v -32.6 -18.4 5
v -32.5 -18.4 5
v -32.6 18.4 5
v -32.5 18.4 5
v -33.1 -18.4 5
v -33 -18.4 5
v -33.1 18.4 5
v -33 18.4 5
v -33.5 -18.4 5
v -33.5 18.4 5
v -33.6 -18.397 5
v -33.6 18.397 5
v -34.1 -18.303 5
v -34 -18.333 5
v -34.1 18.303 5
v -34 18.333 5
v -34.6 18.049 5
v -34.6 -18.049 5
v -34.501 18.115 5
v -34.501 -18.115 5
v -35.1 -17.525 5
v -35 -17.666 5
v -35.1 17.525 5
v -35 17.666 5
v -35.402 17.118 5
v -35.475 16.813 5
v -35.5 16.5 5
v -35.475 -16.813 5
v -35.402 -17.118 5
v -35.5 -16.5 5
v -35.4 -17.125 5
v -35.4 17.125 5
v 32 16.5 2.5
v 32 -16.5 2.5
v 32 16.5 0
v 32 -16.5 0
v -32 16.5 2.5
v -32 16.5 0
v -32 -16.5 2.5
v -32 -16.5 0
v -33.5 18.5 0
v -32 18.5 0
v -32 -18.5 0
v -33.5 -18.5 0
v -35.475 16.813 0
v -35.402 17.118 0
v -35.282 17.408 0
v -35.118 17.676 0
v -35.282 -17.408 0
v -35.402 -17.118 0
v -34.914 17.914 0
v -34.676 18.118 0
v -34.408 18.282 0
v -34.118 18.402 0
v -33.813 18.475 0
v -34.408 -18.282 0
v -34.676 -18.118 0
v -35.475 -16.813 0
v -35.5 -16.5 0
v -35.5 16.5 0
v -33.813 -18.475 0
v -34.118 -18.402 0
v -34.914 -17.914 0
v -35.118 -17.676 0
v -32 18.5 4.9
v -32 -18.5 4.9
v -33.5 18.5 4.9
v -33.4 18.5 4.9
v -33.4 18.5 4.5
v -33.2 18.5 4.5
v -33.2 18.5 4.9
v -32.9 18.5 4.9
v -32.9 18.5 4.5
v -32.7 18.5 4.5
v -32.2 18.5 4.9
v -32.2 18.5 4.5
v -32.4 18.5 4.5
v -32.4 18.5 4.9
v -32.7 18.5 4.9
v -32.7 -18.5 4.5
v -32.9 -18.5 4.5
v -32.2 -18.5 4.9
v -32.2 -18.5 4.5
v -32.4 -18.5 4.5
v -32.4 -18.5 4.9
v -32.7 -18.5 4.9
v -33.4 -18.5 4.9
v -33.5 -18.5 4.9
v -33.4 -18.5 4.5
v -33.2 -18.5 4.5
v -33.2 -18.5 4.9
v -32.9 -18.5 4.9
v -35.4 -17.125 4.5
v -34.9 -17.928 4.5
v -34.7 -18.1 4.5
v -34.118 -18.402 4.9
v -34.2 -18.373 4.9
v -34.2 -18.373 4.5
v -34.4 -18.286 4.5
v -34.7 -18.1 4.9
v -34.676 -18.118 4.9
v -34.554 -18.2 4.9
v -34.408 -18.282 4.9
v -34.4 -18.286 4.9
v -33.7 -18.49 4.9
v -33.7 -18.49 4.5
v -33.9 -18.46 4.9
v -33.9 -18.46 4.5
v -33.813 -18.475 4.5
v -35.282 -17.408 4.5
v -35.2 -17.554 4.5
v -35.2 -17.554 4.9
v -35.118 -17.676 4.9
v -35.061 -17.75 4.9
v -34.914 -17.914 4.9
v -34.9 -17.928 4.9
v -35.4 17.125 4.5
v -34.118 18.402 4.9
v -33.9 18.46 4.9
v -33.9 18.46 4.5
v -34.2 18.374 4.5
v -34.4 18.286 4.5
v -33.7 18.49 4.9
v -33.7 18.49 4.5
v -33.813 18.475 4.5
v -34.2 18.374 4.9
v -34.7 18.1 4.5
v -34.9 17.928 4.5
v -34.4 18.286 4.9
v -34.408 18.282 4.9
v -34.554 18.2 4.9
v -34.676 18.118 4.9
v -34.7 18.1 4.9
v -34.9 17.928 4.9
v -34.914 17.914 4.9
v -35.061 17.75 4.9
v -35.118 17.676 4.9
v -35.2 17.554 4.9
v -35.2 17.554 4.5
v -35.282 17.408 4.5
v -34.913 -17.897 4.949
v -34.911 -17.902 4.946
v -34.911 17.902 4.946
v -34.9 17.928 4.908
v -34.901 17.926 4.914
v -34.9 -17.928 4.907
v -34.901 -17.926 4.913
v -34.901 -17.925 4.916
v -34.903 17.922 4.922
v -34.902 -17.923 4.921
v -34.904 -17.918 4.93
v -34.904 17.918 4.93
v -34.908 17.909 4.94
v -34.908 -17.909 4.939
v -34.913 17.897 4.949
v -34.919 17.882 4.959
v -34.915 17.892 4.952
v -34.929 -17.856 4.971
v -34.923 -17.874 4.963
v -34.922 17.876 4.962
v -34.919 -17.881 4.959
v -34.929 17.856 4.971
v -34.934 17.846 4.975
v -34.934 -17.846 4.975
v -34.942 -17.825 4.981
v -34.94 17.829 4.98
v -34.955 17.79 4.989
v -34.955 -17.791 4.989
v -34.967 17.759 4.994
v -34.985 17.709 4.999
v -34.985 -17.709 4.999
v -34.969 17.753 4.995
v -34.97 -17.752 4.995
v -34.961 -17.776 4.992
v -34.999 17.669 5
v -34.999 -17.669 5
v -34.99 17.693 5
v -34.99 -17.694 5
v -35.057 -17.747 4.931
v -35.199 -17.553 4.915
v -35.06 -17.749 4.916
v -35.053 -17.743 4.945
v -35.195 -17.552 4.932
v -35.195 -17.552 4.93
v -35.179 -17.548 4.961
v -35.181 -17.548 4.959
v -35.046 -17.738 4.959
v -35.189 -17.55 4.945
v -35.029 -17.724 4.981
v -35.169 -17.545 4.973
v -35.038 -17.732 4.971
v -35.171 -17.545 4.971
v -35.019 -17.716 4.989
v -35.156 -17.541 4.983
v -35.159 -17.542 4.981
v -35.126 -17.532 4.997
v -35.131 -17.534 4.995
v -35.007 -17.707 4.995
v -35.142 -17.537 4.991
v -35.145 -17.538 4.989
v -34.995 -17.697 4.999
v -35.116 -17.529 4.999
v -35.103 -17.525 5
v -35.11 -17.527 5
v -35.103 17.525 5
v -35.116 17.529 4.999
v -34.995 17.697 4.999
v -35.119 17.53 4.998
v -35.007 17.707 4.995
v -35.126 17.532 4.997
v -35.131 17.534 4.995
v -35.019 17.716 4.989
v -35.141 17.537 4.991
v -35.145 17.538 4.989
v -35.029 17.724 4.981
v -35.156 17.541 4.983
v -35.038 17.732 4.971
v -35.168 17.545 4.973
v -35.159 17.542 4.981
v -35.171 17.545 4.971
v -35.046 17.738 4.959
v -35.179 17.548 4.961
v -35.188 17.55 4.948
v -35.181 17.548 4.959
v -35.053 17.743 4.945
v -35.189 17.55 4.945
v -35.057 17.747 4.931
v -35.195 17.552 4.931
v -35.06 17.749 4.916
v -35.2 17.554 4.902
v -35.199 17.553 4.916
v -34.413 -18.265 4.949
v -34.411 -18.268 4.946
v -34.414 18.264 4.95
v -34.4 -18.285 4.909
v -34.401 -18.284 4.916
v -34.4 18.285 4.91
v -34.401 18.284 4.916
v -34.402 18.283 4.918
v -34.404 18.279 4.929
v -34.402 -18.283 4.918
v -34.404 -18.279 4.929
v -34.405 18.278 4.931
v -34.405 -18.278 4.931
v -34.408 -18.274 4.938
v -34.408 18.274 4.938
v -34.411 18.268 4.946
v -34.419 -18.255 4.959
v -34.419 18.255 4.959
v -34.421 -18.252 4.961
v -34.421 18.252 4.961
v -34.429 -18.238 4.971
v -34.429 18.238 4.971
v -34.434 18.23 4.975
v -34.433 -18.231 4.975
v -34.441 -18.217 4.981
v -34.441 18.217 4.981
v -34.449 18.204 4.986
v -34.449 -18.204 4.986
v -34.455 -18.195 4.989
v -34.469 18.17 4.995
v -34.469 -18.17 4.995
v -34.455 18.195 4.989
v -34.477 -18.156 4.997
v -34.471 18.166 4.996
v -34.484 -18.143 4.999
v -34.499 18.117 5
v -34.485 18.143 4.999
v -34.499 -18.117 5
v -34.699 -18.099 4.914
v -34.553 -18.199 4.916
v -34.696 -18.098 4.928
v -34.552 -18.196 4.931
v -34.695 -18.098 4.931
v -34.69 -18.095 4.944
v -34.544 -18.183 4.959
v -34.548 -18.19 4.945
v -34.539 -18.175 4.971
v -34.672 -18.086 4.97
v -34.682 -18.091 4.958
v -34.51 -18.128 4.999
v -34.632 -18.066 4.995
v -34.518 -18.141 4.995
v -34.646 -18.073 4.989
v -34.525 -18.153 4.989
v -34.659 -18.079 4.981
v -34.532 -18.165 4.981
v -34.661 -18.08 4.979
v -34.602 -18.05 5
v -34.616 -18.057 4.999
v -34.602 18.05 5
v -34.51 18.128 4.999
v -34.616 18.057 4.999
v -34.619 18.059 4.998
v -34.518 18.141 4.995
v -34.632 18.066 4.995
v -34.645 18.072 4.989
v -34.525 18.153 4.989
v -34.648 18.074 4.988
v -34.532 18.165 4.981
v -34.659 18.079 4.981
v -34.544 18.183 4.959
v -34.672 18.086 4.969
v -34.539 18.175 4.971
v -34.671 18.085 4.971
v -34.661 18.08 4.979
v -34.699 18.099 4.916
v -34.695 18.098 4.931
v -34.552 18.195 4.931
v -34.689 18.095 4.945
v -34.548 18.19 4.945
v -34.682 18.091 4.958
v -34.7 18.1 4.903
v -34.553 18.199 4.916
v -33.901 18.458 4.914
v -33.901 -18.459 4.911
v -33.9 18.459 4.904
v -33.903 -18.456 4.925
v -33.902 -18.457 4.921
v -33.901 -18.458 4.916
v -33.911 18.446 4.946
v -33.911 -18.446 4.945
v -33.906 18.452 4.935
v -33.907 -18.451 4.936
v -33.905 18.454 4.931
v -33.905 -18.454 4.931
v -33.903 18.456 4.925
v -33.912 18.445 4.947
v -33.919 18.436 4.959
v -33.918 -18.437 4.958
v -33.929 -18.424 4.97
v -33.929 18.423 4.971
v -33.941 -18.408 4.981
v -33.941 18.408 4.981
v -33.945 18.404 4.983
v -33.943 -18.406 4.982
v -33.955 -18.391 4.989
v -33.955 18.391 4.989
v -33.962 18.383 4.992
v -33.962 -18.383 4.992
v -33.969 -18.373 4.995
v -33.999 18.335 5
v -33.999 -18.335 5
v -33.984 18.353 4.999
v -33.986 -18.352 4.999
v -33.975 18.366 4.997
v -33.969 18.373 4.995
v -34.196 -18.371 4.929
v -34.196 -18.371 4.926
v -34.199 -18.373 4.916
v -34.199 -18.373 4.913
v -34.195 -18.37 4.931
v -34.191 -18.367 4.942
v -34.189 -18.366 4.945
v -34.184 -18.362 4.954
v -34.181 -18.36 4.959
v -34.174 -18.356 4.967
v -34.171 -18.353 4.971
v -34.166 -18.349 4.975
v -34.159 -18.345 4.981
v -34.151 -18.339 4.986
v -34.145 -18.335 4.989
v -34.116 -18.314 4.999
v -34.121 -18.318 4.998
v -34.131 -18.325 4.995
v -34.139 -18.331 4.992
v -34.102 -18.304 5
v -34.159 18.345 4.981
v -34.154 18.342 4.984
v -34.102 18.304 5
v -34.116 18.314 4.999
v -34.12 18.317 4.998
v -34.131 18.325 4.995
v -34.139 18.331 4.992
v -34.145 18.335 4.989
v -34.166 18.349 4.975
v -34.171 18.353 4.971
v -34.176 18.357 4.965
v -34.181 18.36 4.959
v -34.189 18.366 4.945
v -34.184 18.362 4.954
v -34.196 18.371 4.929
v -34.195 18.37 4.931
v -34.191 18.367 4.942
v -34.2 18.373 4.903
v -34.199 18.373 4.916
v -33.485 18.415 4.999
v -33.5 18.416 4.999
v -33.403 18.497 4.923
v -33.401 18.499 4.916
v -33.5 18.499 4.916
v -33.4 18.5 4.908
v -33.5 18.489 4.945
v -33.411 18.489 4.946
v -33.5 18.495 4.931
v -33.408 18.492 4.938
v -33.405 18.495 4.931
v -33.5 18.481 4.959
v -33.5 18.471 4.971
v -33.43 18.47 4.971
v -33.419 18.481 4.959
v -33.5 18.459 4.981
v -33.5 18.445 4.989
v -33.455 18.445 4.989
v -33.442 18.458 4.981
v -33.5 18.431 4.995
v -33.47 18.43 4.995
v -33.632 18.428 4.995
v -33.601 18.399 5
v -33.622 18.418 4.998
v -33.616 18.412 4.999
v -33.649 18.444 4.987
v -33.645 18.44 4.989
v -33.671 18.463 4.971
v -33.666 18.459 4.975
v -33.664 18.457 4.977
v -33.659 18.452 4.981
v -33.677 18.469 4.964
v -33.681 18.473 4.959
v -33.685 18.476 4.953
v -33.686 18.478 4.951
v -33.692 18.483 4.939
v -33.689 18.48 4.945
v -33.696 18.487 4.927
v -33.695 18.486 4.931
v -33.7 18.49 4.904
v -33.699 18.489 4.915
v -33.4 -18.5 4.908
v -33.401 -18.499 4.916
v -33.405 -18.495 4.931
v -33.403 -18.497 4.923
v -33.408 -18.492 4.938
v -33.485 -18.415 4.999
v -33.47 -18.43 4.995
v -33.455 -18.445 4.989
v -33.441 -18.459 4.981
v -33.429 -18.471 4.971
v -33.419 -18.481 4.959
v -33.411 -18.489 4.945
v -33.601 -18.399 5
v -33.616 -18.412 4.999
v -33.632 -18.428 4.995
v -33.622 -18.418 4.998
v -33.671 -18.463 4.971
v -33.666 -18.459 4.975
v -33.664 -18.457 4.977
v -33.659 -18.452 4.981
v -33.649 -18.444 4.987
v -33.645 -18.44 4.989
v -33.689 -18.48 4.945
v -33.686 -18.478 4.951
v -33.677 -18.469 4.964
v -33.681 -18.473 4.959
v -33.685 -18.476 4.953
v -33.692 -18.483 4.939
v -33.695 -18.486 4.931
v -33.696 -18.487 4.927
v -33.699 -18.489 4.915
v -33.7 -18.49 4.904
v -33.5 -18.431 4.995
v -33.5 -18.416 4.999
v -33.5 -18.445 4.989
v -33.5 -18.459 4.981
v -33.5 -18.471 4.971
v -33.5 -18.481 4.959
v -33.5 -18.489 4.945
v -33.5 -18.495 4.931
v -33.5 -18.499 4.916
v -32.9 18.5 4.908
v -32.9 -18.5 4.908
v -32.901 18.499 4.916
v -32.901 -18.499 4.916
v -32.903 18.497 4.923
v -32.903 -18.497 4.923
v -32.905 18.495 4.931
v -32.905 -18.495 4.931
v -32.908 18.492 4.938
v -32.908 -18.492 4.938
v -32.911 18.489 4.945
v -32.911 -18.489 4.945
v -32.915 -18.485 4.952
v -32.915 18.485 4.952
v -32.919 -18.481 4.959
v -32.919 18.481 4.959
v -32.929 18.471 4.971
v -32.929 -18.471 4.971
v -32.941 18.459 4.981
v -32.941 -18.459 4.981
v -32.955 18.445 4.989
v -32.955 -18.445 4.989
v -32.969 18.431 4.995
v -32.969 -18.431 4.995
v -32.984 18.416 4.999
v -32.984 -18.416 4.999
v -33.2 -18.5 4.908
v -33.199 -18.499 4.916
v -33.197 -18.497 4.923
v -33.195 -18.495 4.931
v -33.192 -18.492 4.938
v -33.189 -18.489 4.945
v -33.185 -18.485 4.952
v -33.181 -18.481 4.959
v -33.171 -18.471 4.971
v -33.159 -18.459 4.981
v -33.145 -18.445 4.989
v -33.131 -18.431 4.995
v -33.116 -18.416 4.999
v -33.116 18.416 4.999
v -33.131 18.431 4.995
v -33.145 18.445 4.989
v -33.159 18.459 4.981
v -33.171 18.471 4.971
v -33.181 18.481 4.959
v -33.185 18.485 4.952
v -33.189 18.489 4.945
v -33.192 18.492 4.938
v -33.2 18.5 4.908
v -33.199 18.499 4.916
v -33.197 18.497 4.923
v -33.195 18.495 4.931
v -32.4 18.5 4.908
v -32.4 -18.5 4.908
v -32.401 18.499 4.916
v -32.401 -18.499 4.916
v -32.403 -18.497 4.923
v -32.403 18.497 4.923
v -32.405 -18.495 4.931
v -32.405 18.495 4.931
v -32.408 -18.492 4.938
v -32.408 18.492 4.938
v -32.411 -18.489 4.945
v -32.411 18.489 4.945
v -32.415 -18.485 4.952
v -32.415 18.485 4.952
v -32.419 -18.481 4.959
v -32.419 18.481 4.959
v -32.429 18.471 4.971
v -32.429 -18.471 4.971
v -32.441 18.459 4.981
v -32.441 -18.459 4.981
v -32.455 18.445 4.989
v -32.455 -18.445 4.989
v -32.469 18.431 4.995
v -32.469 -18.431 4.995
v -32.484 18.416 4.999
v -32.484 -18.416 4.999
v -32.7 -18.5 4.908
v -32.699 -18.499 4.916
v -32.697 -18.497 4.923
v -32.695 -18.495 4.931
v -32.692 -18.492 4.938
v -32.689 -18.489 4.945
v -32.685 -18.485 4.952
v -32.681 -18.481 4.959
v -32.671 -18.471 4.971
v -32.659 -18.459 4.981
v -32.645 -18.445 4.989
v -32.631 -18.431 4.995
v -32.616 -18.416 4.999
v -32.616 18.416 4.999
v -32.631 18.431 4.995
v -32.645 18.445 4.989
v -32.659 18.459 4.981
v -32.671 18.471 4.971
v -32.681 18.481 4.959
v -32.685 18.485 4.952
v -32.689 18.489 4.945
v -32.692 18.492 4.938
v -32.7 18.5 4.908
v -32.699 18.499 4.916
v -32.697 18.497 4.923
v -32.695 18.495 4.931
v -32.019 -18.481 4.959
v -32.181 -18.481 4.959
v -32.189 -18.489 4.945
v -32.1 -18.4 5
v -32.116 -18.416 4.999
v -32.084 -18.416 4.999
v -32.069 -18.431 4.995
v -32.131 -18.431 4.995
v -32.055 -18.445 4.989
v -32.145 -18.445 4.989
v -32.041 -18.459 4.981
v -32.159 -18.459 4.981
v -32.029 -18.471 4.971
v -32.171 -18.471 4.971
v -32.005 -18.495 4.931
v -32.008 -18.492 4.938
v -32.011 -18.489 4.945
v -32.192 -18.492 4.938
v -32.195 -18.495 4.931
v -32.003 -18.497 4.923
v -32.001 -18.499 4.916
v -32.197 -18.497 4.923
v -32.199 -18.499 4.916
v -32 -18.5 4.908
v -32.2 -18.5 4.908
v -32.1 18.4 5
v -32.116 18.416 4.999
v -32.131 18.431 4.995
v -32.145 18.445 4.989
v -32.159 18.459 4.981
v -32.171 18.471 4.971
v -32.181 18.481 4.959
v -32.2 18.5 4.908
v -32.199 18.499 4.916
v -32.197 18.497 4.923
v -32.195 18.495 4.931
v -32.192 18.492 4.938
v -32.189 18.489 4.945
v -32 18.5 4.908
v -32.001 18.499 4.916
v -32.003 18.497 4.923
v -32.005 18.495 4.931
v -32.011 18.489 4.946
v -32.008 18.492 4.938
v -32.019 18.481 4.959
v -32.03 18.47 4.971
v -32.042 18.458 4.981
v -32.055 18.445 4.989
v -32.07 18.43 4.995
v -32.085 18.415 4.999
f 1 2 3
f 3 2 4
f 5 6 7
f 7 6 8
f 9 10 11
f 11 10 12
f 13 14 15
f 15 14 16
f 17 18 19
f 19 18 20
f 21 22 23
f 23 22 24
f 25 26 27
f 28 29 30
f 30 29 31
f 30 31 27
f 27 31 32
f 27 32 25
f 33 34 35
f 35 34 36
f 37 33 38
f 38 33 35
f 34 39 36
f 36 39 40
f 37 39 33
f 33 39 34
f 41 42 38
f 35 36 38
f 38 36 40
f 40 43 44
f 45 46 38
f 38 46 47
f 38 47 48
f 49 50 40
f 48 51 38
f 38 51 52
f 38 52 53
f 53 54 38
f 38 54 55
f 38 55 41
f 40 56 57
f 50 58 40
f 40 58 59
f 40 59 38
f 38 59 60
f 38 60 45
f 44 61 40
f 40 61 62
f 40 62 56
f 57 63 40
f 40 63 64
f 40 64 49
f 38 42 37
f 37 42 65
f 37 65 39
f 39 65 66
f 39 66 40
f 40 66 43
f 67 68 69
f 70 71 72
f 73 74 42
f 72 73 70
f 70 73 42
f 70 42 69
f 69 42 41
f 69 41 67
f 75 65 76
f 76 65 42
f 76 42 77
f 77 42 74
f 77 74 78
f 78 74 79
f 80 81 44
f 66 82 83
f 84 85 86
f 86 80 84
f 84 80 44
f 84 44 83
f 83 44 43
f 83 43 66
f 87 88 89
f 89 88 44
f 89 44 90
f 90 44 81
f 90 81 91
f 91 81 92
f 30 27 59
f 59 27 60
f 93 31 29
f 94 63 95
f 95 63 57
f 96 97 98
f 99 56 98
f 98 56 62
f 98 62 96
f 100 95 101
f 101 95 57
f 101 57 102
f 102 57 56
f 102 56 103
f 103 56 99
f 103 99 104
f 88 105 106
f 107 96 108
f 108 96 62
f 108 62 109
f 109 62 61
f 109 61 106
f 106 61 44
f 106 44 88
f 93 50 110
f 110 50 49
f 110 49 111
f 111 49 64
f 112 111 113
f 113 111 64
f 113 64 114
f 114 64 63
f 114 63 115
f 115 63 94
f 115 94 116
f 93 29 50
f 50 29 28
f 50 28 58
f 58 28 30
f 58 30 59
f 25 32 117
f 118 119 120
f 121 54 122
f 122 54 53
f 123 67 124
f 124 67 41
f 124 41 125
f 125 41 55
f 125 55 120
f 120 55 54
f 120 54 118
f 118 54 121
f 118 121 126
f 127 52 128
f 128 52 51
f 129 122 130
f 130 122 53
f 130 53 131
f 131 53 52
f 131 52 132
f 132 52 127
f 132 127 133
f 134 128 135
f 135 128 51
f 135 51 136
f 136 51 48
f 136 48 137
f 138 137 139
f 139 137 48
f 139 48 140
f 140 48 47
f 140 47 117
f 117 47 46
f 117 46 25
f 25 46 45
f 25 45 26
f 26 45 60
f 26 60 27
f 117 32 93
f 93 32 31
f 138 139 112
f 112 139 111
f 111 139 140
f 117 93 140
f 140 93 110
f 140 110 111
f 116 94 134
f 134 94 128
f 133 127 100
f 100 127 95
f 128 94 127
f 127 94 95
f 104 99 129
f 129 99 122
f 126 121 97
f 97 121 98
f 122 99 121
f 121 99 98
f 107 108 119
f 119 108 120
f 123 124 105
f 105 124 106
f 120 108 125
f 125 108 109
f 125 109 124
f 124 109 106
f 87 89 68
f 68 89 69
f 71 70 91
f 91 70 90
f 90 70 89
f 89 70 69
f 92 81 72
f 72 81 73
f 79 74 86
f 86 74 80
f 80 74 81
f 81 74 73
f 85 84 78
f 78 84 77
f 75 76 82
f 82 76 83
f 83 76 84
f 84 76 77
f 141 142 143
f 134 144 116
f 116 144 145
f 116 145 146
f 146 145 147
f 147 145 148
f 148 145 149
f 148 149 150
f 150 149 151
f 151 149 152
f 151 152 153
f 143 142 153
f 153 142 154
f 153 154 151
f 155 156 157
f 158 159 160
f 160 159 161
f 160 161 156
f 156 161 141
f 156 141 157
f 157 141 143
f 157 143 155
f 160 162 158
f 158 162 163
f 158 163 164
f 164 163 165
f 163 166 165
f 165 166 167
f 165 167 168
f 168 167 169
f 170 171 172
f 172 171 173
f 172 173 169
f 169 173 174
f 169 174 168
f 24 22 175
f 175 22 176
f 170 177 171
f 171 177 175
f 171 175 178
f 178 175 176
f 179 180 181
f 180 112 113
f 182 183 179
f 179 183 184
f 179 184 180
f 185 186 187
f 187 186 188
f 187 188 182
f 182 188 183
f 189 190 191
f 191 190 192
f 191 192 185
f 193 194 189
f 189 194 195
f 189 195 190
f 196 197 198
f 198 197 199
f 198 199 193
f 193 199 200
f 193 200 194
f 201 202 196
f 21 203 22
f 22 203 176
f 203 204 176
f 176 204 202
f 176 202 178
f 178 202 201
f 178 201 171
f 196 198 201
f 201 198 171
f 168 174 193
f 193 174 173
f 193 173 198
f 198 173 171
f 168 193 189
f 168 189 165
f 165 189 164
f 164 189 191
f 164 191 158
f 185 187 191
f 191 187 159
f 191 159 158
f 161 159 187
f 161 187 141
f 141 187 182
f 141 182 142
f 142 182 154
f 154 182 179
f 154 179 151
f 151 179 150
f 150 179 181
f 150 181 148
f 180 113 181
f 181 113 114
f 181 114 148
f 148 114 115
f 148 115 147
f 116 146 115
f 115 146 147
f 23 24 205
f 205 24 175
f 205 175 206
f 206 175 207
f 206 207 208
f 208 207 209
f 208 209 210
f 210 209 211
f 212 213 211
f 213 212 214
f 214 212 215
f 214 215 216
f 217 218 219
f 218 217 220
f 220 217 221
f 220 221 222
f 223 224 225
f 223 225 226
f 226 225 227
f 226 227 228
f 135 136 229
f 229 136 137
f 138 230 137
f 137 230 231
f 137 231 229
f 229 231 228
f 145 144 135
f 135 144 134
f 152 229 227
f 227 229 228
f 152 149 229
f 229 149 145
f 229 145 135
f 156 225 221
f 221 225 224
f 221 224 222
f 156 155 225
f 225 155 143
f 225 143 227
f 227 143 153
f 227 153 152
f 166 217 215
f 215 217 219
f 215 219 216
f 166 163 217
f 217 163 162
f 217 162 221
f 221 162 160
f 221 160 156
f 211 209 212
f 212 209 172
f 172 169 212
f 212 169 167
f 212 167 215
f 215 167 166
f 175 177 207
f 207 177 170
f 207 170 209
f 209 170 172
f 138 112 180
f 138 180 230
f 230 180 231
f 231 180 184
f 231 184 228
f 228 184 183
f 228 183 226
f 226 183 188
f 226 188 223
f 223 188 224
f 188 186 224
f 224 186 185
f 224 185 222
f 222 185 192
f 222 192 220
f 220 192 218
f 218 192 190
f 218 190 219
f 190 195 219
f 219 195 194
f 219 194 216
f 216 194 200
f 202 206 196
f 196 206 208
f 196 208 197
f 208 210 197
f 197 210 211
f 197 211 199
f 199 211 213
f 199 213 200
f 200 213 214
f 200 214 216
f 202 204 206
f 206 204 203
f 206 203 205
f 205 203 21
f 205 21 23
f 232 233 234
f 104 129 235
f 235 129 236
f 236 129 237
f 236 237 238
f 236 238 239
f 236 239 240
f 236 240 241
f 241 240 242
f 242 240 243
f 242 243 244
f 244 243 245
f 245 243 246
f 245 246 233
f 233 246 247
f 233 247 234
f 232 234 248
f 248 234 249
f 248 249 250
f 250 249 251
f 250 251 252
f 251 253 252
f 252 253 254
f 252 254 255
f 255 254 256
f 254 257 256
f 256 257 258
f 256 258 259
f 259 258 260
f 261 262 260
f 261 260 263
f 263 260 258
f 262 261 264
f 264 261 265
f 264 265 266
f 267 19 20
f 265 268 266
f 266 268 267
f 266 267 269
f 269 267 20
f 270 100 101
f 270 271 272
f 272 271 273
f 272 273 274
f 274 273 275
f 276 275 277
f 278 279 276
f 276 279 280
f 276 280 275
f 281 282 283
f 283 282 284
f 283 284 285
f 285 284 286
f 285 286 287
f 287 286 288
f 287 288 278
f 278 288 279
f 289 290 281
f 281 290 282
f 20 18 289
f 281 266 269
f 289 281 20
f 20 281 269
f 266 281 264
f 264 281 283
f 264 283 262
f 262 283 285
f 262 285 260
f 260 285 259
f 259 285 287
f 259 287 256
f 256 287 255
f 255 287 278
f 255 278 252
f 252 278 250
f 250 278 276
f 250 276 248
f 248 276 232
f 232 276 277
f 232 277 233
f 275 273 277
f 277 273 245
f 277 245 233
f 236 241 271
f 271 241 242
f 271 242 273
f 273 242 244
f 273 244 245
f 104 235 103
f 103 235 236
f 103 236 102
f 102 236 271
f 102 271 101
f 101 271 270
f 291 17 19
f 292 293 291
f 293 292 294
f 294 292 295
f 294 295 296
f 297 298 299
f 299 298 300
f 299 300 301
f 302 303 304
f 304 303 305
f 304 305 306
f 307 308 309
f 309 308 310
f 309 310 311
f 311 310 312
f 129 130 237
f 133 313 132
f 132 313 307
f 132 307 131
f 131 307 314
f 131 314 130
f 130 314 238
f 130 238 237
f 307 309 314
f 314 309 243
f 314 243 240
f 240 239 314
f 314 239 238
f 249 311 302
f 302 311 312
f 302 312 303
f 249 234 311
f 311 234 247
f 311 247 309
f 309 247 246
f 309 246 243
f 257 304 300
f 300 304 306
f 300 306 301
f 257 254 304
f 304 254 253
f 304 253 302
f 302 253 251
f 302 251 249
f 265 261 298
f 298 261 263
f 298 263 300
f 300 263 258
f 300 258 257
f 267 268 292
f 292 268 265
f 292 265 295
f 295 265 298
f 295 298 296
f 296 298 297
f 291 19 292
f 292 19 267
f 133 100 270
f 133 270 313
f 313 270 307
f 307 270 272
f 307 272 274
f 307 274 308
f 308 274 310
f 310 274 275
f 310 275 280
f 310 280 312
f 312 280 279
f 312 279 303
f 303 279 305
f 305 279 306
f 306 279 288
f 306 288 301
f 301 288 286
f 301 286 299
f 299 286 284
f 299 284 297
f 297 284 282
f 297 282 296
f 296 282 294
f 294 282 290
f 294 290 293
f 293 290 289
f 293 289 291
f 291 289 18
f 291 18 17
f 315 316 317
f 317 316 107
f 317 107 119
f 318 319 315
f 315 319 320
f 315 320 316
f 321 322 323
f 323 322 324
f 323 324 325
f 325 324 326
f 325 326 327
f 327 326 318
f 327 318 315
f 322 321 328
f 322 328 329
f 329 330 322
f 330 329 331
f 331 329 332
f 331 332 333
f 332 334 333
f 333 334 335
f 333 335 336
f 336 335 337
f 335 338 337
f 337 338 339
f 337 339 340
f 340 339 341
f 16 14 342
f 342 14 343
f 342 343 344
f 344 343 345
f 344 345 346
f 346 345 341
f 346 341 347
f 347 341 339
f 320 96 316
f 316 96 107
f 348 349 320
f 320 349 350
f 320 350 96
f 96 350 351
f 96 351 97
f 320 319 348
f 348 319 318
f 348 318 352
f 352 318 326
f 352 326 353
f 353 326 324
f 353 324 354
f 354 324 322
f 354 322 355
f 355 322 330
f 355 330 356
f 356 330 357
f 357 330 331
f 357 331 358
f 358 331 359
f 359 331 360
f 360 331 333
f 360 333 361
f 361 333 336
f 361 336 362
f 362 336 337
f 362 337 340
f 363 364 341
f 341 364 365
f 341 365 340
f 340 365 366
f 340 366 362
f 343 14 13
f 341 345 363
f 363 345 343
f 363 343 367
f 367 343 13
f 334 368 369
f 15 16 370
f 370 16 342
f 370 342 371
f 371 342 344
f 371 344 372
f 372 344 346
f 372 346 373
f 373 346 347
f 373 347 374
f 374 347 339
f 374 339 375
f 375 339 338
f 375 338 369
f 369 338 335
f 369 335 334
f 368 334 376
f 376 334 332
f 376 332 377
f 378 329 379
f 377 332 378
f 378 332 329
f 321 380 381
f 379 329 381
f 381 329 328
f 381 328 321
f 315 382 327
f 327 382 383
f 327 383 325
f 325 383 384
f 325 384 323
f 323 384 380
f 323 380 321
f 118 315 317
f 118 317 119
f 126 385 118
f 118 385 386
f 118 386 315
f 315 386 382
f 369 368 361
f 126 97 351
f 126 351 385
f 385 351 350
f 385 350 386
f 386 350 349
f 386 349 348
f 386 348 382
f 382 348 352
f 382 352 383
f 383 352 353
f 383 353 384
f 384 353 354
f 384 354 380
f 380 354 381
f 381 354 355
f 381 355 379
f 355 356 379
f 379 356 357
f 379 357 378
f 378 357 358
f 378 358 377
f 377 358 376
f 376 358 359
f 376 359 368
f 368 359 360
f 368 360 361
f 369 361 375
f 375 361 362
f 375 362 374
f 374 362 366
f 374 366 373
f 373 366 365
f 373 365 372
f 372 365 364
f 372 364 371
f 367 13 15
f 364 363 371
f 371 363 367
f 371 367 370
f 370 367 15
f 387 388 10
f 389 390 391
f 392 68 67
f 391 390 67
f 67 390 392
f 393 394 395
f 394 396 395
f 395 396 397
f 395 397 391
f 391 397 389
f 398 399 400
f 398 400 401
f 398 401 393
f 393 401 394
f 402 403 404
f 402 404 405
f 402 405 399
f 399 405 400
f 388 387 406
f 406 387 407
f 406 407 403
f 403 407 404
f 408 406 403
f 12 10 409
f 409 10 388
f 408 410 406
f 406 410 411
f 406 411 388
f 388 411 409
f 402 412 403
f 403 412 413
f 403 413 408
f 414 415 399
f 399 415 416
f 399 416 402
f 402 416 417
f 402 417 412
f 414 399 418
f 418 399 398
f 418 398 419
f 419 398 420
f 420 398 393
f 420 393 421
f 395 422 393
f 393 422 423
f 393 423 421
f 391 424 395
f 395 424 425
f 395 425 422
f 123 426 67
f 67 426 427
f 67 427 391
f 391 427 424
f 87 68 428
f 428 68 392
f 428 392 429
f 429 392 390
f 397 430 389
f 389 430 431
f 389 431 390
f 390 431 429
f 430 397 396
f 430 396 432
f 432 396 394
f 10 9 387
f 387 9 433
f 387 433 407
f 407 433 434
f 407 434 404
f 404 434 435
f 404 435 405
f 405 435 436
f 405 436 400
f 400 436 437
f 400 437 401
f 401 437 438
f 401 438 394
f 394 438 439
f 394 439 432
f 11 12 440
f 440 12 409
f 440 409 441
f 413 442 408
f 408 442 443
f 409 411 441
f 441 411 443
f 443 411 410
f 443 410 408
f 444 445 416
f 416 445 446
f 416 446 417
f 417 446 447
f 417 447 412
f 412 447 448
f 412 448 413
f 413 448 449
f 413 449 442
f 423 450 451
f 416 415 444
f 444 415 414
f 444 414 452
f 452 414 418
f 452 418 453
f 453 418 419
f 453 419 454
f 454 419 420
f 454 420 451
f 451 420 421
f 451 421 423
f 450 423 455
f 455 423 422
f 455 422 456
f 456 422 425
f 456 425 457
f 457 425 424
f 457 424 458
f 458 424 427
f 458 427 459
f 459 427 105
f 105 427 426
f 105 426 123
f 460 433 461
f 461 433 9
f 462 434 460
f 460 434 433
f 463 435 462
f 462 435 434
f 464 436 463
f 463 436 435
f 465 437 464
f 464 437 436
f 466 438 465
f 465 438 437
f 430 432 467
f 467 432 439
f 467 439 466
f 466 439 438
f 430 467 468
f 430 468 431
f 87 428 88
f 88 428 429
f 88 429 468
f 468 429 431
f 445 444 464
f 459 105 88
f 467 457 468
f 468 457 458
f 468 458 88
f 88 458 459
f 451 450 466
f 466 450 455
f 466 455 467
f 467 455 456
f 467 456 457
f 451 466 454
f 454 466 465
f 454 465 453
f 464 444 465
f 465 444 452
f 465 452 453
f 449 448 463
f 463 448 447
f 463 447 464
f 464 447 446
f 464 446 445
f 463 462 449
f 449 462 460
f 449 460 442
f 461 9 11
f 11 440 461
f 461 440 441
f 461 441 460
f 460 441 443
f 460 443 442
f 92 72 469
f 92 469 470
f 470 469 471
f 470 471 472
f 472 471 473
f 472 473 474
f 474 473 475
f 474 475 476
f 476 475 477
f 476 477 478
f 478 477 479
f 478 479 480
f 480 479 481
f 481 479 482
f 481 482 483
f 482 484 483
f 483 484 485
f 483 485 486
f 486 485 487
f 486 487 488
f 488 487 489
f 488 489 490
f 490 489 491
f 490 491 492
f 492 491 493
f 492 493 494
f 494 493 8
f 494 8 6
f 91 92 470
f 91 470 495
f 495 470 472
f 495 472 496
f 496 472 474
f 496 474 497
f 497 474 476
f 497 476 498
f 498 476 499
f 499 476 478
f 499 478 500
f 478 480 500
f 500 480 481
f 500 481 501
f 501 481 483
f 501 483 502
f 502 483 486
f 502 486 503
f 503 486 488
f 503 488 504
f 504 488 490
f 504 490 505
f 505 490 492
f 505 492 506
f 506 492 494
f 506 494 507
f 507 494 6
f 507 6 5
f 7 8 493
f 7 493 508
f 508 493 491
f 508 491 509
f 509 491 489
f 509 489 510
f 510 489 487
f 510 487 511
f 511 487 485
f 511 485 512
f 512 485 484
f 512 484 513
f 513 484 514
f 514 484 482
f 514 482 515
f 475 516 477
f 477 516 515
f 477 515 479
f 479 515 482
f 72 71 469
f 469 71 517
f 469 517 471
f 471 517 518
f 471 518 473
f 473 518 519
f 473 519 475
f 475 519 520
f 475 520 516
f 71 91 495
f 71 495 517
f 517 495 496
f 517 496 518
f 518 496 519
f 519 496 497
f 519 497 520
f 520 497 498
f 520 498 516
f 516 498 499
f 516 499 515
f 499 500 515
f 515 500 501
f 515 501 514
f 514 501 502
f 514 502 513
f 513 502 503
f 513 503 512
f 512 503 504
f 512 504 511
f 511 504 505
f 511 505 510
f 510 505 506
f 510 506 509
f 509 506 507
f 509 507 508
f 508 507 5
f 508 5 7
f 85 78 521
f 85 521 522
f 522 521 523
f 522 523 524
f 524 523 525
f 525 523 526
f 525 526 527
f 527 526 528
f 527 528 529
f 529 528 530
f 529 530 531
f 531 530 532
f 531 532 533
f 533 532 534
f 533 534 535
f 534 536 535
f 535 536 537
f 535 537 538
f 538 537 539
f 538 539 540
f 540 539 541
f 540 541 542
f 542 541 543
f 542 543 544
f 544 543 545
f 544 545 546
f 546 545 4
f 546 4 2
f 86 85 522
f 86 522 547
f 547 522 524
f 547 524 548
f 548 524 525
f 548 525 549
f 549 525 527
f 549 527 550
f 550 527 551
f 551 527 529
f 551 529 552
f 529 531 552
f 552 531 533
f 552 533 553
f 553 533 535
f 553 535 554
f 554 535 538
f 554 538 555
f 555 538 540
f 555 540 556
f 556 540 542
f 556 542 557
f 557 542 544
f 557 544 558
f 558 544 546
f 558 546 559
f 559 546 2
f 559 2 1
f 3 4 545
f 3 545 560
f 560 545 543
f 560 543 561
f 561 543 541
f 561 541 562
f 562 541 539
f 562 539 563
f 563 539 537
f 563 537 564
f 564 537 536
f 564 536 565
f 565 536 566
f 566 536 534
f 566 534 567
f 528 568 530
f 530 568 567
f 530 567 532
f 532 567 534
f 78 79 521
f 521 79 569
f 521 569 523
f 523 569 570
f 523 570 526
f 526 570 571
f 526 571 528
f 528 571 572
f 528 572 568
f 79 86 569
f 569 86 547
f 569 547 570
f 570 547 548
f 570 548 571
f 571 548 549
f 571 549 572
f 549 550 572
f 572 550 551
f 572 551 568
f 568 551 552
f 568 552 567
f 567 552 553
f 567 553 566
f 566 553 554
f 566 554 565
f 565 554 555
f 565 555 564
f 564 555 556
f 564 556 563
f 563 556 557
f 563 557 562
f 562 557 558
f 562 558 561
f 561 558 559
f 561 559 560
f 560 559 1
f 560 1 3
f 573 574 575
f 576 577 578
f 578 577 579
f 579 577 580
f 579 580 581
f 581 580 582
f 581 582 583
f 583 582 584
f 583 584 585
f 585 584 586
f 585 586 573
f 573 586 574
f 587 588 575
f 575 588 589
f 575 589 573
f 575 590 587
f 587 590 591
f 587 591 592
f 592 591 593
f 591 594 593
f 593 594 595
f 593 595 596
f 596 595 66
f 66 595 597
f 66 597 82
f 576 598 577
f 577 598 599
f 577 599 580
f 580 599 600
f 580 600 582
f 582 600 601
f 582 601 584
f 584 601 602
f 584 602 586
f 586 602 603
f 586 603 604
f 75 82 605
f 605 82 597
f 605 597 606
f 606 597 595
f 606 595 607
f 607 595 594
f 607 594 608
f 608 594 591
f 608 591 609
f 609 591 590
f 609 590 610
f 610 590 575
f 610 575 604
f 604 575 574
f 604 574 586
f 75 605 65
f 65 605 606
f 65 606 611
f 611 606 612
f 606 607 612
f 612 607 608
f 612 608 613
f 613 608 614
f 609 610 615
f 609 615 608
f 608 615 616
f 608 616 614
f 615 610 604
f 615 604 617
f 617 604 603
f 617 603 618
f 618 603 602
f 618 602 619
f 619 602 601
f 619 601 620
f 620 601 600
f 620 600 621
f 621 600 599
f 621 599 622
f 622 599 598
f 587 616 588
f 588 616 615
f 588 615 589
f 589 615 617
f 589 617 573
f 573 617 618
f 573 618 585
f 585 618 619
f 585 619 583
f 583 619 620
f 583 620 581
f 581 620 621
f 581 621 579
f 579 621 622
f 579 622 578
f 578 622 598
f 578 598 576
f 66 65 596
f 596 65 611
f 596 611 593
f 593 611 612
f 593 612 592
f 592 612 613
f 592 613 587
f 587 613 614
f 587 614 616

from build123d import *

# Parameters (mm, degrees)
CROQUIS1_W              = 64
CROQUIS1_H              = 33
SALIENTE_EXTRUIR1_DEPTH = 2.5
CROQUIS3_W              = 5
CROQUIS3_H              = 37
SALIENTE_EXTRUIR2_DEPTH = 3.5
REDONDEO1_R             = 2
CROQUIS4_W              = 0.2
CROQUIS4_H              = 37
CORTAR_EXTRUIR1_DEPTH   = 0.5
REDONDEO2_R             = 0.1


with BuildPart() as part:
    # Croquis1 → Saliente-Extruir1 (new body)
    with BuildSketch(Plane.XY):
        Rectangle(CROQUIS1_W, CROQUIS1_H)
    extrude(amount=SALIENTE_EXTRUIR1_DEPTH)

    # Croquis3 → Saliente-Extruir2 (add)
    with BuildSketch(Plane.ZY.offset(32)):
        with Locations((2.5, 0)):
            Rectangle(CROQUIS3_W, CROQUIS3_H)
    extrude(amount=SALIENTE_EXTRUIR2_DEPTH)

    # Redondeo1
    redondeo1_edges = [part.edges().sort_by_distance(p)[0] for p in [
        (-35.5, 18.5, 2.5),
        (-35.5, -18.5, 2.5),
    ]]
    fillet(redondeo1_edges, radius=REDONDEO1_R)

    # Croquis4 → Cortar-Extruir1 (cut)
    with BuildSketch(Plane.XY.offset(5)):
        with Locations((-32.3, 0)):
            Rectangle(CROQUIS4_W, CROQUIS4_H)
        with Locations((-32.8, 0)):
            Rectangle(CROQUIS4_W, CROQUIS4_H)
        with Locations((-33.3, 0)):
            Rectangle(CROQUIS4_W, CROQUIS4_H)
        with Locations((-33.8, 0)):
            Rectangle(CROQUIS4_W, CROQUIS4_H)
        with Locations((-34.3, 0)):
            Rectangle(CROQUIS4_W, CROQUIS4_H)
        with Locations((-34.8, 0)):
            Rectangle(CROQUIS4_W, CROQUIS4_H)
        with Locations((-35.3, 0)):
            Rectangle(CROQUIS4_W, CROQUIS4_H)
    extrude(amount=-CORTAR_EXTRUIR1_DEPTH, mode=Mode.SUBTRACT)

    # Redondeo2
    redondeo2_edges = [part.edges().sort_by_distance(p)[0] for p in [
        (-34.2, 0, 5),
        (-34.4, 0, 5),
        (-34.7, 0, 5),
        (-34.9, 0, 5),
        (-35.2, 0, 5),
        (-32, 0, 5),
        (-33.45, 18.5, 5),
        (-33.45, -18.5, 5),
        (-33.60012555, 18.497492146, 5),
        (-34.051681951, 18.422406571, 5),
        (-34.554113045, 18.199660463, 5),
        (-35.061282751, 17.749958468, 5),
        (-35.061282751, -17.749958468, 5),
        (-34.554113045, -18.199660463, 5),
        (-34.051681951, -18.422406571, 5),
        (-33.60012555, -18.497492146, 5),
        (-33.05, -18.5, 5),
        (-32.55, -18.5, 5),
        (-32.1, -18.5, 5),
        (-33.05, 18.5, 5),
        (-32.55, 18.5, 5),
        (-32.1, 18.5, 5),
        (-32.4, 0, 5),
        (-32.2, 0, 5),
        (-32.9, 0, 5),
        (-32.7, 0, 5),
        (-33.4, 0, 5),
        (-33.2, 0, 5),
        (-33.7, 0, 5),
        (-33.9, 0, 5),
    ]]
    fillet(redondeo2_edges, radius=REDONDEO2_R - 0.0001)  # a hair under: the kernel refuses the full size


solid = part.part
